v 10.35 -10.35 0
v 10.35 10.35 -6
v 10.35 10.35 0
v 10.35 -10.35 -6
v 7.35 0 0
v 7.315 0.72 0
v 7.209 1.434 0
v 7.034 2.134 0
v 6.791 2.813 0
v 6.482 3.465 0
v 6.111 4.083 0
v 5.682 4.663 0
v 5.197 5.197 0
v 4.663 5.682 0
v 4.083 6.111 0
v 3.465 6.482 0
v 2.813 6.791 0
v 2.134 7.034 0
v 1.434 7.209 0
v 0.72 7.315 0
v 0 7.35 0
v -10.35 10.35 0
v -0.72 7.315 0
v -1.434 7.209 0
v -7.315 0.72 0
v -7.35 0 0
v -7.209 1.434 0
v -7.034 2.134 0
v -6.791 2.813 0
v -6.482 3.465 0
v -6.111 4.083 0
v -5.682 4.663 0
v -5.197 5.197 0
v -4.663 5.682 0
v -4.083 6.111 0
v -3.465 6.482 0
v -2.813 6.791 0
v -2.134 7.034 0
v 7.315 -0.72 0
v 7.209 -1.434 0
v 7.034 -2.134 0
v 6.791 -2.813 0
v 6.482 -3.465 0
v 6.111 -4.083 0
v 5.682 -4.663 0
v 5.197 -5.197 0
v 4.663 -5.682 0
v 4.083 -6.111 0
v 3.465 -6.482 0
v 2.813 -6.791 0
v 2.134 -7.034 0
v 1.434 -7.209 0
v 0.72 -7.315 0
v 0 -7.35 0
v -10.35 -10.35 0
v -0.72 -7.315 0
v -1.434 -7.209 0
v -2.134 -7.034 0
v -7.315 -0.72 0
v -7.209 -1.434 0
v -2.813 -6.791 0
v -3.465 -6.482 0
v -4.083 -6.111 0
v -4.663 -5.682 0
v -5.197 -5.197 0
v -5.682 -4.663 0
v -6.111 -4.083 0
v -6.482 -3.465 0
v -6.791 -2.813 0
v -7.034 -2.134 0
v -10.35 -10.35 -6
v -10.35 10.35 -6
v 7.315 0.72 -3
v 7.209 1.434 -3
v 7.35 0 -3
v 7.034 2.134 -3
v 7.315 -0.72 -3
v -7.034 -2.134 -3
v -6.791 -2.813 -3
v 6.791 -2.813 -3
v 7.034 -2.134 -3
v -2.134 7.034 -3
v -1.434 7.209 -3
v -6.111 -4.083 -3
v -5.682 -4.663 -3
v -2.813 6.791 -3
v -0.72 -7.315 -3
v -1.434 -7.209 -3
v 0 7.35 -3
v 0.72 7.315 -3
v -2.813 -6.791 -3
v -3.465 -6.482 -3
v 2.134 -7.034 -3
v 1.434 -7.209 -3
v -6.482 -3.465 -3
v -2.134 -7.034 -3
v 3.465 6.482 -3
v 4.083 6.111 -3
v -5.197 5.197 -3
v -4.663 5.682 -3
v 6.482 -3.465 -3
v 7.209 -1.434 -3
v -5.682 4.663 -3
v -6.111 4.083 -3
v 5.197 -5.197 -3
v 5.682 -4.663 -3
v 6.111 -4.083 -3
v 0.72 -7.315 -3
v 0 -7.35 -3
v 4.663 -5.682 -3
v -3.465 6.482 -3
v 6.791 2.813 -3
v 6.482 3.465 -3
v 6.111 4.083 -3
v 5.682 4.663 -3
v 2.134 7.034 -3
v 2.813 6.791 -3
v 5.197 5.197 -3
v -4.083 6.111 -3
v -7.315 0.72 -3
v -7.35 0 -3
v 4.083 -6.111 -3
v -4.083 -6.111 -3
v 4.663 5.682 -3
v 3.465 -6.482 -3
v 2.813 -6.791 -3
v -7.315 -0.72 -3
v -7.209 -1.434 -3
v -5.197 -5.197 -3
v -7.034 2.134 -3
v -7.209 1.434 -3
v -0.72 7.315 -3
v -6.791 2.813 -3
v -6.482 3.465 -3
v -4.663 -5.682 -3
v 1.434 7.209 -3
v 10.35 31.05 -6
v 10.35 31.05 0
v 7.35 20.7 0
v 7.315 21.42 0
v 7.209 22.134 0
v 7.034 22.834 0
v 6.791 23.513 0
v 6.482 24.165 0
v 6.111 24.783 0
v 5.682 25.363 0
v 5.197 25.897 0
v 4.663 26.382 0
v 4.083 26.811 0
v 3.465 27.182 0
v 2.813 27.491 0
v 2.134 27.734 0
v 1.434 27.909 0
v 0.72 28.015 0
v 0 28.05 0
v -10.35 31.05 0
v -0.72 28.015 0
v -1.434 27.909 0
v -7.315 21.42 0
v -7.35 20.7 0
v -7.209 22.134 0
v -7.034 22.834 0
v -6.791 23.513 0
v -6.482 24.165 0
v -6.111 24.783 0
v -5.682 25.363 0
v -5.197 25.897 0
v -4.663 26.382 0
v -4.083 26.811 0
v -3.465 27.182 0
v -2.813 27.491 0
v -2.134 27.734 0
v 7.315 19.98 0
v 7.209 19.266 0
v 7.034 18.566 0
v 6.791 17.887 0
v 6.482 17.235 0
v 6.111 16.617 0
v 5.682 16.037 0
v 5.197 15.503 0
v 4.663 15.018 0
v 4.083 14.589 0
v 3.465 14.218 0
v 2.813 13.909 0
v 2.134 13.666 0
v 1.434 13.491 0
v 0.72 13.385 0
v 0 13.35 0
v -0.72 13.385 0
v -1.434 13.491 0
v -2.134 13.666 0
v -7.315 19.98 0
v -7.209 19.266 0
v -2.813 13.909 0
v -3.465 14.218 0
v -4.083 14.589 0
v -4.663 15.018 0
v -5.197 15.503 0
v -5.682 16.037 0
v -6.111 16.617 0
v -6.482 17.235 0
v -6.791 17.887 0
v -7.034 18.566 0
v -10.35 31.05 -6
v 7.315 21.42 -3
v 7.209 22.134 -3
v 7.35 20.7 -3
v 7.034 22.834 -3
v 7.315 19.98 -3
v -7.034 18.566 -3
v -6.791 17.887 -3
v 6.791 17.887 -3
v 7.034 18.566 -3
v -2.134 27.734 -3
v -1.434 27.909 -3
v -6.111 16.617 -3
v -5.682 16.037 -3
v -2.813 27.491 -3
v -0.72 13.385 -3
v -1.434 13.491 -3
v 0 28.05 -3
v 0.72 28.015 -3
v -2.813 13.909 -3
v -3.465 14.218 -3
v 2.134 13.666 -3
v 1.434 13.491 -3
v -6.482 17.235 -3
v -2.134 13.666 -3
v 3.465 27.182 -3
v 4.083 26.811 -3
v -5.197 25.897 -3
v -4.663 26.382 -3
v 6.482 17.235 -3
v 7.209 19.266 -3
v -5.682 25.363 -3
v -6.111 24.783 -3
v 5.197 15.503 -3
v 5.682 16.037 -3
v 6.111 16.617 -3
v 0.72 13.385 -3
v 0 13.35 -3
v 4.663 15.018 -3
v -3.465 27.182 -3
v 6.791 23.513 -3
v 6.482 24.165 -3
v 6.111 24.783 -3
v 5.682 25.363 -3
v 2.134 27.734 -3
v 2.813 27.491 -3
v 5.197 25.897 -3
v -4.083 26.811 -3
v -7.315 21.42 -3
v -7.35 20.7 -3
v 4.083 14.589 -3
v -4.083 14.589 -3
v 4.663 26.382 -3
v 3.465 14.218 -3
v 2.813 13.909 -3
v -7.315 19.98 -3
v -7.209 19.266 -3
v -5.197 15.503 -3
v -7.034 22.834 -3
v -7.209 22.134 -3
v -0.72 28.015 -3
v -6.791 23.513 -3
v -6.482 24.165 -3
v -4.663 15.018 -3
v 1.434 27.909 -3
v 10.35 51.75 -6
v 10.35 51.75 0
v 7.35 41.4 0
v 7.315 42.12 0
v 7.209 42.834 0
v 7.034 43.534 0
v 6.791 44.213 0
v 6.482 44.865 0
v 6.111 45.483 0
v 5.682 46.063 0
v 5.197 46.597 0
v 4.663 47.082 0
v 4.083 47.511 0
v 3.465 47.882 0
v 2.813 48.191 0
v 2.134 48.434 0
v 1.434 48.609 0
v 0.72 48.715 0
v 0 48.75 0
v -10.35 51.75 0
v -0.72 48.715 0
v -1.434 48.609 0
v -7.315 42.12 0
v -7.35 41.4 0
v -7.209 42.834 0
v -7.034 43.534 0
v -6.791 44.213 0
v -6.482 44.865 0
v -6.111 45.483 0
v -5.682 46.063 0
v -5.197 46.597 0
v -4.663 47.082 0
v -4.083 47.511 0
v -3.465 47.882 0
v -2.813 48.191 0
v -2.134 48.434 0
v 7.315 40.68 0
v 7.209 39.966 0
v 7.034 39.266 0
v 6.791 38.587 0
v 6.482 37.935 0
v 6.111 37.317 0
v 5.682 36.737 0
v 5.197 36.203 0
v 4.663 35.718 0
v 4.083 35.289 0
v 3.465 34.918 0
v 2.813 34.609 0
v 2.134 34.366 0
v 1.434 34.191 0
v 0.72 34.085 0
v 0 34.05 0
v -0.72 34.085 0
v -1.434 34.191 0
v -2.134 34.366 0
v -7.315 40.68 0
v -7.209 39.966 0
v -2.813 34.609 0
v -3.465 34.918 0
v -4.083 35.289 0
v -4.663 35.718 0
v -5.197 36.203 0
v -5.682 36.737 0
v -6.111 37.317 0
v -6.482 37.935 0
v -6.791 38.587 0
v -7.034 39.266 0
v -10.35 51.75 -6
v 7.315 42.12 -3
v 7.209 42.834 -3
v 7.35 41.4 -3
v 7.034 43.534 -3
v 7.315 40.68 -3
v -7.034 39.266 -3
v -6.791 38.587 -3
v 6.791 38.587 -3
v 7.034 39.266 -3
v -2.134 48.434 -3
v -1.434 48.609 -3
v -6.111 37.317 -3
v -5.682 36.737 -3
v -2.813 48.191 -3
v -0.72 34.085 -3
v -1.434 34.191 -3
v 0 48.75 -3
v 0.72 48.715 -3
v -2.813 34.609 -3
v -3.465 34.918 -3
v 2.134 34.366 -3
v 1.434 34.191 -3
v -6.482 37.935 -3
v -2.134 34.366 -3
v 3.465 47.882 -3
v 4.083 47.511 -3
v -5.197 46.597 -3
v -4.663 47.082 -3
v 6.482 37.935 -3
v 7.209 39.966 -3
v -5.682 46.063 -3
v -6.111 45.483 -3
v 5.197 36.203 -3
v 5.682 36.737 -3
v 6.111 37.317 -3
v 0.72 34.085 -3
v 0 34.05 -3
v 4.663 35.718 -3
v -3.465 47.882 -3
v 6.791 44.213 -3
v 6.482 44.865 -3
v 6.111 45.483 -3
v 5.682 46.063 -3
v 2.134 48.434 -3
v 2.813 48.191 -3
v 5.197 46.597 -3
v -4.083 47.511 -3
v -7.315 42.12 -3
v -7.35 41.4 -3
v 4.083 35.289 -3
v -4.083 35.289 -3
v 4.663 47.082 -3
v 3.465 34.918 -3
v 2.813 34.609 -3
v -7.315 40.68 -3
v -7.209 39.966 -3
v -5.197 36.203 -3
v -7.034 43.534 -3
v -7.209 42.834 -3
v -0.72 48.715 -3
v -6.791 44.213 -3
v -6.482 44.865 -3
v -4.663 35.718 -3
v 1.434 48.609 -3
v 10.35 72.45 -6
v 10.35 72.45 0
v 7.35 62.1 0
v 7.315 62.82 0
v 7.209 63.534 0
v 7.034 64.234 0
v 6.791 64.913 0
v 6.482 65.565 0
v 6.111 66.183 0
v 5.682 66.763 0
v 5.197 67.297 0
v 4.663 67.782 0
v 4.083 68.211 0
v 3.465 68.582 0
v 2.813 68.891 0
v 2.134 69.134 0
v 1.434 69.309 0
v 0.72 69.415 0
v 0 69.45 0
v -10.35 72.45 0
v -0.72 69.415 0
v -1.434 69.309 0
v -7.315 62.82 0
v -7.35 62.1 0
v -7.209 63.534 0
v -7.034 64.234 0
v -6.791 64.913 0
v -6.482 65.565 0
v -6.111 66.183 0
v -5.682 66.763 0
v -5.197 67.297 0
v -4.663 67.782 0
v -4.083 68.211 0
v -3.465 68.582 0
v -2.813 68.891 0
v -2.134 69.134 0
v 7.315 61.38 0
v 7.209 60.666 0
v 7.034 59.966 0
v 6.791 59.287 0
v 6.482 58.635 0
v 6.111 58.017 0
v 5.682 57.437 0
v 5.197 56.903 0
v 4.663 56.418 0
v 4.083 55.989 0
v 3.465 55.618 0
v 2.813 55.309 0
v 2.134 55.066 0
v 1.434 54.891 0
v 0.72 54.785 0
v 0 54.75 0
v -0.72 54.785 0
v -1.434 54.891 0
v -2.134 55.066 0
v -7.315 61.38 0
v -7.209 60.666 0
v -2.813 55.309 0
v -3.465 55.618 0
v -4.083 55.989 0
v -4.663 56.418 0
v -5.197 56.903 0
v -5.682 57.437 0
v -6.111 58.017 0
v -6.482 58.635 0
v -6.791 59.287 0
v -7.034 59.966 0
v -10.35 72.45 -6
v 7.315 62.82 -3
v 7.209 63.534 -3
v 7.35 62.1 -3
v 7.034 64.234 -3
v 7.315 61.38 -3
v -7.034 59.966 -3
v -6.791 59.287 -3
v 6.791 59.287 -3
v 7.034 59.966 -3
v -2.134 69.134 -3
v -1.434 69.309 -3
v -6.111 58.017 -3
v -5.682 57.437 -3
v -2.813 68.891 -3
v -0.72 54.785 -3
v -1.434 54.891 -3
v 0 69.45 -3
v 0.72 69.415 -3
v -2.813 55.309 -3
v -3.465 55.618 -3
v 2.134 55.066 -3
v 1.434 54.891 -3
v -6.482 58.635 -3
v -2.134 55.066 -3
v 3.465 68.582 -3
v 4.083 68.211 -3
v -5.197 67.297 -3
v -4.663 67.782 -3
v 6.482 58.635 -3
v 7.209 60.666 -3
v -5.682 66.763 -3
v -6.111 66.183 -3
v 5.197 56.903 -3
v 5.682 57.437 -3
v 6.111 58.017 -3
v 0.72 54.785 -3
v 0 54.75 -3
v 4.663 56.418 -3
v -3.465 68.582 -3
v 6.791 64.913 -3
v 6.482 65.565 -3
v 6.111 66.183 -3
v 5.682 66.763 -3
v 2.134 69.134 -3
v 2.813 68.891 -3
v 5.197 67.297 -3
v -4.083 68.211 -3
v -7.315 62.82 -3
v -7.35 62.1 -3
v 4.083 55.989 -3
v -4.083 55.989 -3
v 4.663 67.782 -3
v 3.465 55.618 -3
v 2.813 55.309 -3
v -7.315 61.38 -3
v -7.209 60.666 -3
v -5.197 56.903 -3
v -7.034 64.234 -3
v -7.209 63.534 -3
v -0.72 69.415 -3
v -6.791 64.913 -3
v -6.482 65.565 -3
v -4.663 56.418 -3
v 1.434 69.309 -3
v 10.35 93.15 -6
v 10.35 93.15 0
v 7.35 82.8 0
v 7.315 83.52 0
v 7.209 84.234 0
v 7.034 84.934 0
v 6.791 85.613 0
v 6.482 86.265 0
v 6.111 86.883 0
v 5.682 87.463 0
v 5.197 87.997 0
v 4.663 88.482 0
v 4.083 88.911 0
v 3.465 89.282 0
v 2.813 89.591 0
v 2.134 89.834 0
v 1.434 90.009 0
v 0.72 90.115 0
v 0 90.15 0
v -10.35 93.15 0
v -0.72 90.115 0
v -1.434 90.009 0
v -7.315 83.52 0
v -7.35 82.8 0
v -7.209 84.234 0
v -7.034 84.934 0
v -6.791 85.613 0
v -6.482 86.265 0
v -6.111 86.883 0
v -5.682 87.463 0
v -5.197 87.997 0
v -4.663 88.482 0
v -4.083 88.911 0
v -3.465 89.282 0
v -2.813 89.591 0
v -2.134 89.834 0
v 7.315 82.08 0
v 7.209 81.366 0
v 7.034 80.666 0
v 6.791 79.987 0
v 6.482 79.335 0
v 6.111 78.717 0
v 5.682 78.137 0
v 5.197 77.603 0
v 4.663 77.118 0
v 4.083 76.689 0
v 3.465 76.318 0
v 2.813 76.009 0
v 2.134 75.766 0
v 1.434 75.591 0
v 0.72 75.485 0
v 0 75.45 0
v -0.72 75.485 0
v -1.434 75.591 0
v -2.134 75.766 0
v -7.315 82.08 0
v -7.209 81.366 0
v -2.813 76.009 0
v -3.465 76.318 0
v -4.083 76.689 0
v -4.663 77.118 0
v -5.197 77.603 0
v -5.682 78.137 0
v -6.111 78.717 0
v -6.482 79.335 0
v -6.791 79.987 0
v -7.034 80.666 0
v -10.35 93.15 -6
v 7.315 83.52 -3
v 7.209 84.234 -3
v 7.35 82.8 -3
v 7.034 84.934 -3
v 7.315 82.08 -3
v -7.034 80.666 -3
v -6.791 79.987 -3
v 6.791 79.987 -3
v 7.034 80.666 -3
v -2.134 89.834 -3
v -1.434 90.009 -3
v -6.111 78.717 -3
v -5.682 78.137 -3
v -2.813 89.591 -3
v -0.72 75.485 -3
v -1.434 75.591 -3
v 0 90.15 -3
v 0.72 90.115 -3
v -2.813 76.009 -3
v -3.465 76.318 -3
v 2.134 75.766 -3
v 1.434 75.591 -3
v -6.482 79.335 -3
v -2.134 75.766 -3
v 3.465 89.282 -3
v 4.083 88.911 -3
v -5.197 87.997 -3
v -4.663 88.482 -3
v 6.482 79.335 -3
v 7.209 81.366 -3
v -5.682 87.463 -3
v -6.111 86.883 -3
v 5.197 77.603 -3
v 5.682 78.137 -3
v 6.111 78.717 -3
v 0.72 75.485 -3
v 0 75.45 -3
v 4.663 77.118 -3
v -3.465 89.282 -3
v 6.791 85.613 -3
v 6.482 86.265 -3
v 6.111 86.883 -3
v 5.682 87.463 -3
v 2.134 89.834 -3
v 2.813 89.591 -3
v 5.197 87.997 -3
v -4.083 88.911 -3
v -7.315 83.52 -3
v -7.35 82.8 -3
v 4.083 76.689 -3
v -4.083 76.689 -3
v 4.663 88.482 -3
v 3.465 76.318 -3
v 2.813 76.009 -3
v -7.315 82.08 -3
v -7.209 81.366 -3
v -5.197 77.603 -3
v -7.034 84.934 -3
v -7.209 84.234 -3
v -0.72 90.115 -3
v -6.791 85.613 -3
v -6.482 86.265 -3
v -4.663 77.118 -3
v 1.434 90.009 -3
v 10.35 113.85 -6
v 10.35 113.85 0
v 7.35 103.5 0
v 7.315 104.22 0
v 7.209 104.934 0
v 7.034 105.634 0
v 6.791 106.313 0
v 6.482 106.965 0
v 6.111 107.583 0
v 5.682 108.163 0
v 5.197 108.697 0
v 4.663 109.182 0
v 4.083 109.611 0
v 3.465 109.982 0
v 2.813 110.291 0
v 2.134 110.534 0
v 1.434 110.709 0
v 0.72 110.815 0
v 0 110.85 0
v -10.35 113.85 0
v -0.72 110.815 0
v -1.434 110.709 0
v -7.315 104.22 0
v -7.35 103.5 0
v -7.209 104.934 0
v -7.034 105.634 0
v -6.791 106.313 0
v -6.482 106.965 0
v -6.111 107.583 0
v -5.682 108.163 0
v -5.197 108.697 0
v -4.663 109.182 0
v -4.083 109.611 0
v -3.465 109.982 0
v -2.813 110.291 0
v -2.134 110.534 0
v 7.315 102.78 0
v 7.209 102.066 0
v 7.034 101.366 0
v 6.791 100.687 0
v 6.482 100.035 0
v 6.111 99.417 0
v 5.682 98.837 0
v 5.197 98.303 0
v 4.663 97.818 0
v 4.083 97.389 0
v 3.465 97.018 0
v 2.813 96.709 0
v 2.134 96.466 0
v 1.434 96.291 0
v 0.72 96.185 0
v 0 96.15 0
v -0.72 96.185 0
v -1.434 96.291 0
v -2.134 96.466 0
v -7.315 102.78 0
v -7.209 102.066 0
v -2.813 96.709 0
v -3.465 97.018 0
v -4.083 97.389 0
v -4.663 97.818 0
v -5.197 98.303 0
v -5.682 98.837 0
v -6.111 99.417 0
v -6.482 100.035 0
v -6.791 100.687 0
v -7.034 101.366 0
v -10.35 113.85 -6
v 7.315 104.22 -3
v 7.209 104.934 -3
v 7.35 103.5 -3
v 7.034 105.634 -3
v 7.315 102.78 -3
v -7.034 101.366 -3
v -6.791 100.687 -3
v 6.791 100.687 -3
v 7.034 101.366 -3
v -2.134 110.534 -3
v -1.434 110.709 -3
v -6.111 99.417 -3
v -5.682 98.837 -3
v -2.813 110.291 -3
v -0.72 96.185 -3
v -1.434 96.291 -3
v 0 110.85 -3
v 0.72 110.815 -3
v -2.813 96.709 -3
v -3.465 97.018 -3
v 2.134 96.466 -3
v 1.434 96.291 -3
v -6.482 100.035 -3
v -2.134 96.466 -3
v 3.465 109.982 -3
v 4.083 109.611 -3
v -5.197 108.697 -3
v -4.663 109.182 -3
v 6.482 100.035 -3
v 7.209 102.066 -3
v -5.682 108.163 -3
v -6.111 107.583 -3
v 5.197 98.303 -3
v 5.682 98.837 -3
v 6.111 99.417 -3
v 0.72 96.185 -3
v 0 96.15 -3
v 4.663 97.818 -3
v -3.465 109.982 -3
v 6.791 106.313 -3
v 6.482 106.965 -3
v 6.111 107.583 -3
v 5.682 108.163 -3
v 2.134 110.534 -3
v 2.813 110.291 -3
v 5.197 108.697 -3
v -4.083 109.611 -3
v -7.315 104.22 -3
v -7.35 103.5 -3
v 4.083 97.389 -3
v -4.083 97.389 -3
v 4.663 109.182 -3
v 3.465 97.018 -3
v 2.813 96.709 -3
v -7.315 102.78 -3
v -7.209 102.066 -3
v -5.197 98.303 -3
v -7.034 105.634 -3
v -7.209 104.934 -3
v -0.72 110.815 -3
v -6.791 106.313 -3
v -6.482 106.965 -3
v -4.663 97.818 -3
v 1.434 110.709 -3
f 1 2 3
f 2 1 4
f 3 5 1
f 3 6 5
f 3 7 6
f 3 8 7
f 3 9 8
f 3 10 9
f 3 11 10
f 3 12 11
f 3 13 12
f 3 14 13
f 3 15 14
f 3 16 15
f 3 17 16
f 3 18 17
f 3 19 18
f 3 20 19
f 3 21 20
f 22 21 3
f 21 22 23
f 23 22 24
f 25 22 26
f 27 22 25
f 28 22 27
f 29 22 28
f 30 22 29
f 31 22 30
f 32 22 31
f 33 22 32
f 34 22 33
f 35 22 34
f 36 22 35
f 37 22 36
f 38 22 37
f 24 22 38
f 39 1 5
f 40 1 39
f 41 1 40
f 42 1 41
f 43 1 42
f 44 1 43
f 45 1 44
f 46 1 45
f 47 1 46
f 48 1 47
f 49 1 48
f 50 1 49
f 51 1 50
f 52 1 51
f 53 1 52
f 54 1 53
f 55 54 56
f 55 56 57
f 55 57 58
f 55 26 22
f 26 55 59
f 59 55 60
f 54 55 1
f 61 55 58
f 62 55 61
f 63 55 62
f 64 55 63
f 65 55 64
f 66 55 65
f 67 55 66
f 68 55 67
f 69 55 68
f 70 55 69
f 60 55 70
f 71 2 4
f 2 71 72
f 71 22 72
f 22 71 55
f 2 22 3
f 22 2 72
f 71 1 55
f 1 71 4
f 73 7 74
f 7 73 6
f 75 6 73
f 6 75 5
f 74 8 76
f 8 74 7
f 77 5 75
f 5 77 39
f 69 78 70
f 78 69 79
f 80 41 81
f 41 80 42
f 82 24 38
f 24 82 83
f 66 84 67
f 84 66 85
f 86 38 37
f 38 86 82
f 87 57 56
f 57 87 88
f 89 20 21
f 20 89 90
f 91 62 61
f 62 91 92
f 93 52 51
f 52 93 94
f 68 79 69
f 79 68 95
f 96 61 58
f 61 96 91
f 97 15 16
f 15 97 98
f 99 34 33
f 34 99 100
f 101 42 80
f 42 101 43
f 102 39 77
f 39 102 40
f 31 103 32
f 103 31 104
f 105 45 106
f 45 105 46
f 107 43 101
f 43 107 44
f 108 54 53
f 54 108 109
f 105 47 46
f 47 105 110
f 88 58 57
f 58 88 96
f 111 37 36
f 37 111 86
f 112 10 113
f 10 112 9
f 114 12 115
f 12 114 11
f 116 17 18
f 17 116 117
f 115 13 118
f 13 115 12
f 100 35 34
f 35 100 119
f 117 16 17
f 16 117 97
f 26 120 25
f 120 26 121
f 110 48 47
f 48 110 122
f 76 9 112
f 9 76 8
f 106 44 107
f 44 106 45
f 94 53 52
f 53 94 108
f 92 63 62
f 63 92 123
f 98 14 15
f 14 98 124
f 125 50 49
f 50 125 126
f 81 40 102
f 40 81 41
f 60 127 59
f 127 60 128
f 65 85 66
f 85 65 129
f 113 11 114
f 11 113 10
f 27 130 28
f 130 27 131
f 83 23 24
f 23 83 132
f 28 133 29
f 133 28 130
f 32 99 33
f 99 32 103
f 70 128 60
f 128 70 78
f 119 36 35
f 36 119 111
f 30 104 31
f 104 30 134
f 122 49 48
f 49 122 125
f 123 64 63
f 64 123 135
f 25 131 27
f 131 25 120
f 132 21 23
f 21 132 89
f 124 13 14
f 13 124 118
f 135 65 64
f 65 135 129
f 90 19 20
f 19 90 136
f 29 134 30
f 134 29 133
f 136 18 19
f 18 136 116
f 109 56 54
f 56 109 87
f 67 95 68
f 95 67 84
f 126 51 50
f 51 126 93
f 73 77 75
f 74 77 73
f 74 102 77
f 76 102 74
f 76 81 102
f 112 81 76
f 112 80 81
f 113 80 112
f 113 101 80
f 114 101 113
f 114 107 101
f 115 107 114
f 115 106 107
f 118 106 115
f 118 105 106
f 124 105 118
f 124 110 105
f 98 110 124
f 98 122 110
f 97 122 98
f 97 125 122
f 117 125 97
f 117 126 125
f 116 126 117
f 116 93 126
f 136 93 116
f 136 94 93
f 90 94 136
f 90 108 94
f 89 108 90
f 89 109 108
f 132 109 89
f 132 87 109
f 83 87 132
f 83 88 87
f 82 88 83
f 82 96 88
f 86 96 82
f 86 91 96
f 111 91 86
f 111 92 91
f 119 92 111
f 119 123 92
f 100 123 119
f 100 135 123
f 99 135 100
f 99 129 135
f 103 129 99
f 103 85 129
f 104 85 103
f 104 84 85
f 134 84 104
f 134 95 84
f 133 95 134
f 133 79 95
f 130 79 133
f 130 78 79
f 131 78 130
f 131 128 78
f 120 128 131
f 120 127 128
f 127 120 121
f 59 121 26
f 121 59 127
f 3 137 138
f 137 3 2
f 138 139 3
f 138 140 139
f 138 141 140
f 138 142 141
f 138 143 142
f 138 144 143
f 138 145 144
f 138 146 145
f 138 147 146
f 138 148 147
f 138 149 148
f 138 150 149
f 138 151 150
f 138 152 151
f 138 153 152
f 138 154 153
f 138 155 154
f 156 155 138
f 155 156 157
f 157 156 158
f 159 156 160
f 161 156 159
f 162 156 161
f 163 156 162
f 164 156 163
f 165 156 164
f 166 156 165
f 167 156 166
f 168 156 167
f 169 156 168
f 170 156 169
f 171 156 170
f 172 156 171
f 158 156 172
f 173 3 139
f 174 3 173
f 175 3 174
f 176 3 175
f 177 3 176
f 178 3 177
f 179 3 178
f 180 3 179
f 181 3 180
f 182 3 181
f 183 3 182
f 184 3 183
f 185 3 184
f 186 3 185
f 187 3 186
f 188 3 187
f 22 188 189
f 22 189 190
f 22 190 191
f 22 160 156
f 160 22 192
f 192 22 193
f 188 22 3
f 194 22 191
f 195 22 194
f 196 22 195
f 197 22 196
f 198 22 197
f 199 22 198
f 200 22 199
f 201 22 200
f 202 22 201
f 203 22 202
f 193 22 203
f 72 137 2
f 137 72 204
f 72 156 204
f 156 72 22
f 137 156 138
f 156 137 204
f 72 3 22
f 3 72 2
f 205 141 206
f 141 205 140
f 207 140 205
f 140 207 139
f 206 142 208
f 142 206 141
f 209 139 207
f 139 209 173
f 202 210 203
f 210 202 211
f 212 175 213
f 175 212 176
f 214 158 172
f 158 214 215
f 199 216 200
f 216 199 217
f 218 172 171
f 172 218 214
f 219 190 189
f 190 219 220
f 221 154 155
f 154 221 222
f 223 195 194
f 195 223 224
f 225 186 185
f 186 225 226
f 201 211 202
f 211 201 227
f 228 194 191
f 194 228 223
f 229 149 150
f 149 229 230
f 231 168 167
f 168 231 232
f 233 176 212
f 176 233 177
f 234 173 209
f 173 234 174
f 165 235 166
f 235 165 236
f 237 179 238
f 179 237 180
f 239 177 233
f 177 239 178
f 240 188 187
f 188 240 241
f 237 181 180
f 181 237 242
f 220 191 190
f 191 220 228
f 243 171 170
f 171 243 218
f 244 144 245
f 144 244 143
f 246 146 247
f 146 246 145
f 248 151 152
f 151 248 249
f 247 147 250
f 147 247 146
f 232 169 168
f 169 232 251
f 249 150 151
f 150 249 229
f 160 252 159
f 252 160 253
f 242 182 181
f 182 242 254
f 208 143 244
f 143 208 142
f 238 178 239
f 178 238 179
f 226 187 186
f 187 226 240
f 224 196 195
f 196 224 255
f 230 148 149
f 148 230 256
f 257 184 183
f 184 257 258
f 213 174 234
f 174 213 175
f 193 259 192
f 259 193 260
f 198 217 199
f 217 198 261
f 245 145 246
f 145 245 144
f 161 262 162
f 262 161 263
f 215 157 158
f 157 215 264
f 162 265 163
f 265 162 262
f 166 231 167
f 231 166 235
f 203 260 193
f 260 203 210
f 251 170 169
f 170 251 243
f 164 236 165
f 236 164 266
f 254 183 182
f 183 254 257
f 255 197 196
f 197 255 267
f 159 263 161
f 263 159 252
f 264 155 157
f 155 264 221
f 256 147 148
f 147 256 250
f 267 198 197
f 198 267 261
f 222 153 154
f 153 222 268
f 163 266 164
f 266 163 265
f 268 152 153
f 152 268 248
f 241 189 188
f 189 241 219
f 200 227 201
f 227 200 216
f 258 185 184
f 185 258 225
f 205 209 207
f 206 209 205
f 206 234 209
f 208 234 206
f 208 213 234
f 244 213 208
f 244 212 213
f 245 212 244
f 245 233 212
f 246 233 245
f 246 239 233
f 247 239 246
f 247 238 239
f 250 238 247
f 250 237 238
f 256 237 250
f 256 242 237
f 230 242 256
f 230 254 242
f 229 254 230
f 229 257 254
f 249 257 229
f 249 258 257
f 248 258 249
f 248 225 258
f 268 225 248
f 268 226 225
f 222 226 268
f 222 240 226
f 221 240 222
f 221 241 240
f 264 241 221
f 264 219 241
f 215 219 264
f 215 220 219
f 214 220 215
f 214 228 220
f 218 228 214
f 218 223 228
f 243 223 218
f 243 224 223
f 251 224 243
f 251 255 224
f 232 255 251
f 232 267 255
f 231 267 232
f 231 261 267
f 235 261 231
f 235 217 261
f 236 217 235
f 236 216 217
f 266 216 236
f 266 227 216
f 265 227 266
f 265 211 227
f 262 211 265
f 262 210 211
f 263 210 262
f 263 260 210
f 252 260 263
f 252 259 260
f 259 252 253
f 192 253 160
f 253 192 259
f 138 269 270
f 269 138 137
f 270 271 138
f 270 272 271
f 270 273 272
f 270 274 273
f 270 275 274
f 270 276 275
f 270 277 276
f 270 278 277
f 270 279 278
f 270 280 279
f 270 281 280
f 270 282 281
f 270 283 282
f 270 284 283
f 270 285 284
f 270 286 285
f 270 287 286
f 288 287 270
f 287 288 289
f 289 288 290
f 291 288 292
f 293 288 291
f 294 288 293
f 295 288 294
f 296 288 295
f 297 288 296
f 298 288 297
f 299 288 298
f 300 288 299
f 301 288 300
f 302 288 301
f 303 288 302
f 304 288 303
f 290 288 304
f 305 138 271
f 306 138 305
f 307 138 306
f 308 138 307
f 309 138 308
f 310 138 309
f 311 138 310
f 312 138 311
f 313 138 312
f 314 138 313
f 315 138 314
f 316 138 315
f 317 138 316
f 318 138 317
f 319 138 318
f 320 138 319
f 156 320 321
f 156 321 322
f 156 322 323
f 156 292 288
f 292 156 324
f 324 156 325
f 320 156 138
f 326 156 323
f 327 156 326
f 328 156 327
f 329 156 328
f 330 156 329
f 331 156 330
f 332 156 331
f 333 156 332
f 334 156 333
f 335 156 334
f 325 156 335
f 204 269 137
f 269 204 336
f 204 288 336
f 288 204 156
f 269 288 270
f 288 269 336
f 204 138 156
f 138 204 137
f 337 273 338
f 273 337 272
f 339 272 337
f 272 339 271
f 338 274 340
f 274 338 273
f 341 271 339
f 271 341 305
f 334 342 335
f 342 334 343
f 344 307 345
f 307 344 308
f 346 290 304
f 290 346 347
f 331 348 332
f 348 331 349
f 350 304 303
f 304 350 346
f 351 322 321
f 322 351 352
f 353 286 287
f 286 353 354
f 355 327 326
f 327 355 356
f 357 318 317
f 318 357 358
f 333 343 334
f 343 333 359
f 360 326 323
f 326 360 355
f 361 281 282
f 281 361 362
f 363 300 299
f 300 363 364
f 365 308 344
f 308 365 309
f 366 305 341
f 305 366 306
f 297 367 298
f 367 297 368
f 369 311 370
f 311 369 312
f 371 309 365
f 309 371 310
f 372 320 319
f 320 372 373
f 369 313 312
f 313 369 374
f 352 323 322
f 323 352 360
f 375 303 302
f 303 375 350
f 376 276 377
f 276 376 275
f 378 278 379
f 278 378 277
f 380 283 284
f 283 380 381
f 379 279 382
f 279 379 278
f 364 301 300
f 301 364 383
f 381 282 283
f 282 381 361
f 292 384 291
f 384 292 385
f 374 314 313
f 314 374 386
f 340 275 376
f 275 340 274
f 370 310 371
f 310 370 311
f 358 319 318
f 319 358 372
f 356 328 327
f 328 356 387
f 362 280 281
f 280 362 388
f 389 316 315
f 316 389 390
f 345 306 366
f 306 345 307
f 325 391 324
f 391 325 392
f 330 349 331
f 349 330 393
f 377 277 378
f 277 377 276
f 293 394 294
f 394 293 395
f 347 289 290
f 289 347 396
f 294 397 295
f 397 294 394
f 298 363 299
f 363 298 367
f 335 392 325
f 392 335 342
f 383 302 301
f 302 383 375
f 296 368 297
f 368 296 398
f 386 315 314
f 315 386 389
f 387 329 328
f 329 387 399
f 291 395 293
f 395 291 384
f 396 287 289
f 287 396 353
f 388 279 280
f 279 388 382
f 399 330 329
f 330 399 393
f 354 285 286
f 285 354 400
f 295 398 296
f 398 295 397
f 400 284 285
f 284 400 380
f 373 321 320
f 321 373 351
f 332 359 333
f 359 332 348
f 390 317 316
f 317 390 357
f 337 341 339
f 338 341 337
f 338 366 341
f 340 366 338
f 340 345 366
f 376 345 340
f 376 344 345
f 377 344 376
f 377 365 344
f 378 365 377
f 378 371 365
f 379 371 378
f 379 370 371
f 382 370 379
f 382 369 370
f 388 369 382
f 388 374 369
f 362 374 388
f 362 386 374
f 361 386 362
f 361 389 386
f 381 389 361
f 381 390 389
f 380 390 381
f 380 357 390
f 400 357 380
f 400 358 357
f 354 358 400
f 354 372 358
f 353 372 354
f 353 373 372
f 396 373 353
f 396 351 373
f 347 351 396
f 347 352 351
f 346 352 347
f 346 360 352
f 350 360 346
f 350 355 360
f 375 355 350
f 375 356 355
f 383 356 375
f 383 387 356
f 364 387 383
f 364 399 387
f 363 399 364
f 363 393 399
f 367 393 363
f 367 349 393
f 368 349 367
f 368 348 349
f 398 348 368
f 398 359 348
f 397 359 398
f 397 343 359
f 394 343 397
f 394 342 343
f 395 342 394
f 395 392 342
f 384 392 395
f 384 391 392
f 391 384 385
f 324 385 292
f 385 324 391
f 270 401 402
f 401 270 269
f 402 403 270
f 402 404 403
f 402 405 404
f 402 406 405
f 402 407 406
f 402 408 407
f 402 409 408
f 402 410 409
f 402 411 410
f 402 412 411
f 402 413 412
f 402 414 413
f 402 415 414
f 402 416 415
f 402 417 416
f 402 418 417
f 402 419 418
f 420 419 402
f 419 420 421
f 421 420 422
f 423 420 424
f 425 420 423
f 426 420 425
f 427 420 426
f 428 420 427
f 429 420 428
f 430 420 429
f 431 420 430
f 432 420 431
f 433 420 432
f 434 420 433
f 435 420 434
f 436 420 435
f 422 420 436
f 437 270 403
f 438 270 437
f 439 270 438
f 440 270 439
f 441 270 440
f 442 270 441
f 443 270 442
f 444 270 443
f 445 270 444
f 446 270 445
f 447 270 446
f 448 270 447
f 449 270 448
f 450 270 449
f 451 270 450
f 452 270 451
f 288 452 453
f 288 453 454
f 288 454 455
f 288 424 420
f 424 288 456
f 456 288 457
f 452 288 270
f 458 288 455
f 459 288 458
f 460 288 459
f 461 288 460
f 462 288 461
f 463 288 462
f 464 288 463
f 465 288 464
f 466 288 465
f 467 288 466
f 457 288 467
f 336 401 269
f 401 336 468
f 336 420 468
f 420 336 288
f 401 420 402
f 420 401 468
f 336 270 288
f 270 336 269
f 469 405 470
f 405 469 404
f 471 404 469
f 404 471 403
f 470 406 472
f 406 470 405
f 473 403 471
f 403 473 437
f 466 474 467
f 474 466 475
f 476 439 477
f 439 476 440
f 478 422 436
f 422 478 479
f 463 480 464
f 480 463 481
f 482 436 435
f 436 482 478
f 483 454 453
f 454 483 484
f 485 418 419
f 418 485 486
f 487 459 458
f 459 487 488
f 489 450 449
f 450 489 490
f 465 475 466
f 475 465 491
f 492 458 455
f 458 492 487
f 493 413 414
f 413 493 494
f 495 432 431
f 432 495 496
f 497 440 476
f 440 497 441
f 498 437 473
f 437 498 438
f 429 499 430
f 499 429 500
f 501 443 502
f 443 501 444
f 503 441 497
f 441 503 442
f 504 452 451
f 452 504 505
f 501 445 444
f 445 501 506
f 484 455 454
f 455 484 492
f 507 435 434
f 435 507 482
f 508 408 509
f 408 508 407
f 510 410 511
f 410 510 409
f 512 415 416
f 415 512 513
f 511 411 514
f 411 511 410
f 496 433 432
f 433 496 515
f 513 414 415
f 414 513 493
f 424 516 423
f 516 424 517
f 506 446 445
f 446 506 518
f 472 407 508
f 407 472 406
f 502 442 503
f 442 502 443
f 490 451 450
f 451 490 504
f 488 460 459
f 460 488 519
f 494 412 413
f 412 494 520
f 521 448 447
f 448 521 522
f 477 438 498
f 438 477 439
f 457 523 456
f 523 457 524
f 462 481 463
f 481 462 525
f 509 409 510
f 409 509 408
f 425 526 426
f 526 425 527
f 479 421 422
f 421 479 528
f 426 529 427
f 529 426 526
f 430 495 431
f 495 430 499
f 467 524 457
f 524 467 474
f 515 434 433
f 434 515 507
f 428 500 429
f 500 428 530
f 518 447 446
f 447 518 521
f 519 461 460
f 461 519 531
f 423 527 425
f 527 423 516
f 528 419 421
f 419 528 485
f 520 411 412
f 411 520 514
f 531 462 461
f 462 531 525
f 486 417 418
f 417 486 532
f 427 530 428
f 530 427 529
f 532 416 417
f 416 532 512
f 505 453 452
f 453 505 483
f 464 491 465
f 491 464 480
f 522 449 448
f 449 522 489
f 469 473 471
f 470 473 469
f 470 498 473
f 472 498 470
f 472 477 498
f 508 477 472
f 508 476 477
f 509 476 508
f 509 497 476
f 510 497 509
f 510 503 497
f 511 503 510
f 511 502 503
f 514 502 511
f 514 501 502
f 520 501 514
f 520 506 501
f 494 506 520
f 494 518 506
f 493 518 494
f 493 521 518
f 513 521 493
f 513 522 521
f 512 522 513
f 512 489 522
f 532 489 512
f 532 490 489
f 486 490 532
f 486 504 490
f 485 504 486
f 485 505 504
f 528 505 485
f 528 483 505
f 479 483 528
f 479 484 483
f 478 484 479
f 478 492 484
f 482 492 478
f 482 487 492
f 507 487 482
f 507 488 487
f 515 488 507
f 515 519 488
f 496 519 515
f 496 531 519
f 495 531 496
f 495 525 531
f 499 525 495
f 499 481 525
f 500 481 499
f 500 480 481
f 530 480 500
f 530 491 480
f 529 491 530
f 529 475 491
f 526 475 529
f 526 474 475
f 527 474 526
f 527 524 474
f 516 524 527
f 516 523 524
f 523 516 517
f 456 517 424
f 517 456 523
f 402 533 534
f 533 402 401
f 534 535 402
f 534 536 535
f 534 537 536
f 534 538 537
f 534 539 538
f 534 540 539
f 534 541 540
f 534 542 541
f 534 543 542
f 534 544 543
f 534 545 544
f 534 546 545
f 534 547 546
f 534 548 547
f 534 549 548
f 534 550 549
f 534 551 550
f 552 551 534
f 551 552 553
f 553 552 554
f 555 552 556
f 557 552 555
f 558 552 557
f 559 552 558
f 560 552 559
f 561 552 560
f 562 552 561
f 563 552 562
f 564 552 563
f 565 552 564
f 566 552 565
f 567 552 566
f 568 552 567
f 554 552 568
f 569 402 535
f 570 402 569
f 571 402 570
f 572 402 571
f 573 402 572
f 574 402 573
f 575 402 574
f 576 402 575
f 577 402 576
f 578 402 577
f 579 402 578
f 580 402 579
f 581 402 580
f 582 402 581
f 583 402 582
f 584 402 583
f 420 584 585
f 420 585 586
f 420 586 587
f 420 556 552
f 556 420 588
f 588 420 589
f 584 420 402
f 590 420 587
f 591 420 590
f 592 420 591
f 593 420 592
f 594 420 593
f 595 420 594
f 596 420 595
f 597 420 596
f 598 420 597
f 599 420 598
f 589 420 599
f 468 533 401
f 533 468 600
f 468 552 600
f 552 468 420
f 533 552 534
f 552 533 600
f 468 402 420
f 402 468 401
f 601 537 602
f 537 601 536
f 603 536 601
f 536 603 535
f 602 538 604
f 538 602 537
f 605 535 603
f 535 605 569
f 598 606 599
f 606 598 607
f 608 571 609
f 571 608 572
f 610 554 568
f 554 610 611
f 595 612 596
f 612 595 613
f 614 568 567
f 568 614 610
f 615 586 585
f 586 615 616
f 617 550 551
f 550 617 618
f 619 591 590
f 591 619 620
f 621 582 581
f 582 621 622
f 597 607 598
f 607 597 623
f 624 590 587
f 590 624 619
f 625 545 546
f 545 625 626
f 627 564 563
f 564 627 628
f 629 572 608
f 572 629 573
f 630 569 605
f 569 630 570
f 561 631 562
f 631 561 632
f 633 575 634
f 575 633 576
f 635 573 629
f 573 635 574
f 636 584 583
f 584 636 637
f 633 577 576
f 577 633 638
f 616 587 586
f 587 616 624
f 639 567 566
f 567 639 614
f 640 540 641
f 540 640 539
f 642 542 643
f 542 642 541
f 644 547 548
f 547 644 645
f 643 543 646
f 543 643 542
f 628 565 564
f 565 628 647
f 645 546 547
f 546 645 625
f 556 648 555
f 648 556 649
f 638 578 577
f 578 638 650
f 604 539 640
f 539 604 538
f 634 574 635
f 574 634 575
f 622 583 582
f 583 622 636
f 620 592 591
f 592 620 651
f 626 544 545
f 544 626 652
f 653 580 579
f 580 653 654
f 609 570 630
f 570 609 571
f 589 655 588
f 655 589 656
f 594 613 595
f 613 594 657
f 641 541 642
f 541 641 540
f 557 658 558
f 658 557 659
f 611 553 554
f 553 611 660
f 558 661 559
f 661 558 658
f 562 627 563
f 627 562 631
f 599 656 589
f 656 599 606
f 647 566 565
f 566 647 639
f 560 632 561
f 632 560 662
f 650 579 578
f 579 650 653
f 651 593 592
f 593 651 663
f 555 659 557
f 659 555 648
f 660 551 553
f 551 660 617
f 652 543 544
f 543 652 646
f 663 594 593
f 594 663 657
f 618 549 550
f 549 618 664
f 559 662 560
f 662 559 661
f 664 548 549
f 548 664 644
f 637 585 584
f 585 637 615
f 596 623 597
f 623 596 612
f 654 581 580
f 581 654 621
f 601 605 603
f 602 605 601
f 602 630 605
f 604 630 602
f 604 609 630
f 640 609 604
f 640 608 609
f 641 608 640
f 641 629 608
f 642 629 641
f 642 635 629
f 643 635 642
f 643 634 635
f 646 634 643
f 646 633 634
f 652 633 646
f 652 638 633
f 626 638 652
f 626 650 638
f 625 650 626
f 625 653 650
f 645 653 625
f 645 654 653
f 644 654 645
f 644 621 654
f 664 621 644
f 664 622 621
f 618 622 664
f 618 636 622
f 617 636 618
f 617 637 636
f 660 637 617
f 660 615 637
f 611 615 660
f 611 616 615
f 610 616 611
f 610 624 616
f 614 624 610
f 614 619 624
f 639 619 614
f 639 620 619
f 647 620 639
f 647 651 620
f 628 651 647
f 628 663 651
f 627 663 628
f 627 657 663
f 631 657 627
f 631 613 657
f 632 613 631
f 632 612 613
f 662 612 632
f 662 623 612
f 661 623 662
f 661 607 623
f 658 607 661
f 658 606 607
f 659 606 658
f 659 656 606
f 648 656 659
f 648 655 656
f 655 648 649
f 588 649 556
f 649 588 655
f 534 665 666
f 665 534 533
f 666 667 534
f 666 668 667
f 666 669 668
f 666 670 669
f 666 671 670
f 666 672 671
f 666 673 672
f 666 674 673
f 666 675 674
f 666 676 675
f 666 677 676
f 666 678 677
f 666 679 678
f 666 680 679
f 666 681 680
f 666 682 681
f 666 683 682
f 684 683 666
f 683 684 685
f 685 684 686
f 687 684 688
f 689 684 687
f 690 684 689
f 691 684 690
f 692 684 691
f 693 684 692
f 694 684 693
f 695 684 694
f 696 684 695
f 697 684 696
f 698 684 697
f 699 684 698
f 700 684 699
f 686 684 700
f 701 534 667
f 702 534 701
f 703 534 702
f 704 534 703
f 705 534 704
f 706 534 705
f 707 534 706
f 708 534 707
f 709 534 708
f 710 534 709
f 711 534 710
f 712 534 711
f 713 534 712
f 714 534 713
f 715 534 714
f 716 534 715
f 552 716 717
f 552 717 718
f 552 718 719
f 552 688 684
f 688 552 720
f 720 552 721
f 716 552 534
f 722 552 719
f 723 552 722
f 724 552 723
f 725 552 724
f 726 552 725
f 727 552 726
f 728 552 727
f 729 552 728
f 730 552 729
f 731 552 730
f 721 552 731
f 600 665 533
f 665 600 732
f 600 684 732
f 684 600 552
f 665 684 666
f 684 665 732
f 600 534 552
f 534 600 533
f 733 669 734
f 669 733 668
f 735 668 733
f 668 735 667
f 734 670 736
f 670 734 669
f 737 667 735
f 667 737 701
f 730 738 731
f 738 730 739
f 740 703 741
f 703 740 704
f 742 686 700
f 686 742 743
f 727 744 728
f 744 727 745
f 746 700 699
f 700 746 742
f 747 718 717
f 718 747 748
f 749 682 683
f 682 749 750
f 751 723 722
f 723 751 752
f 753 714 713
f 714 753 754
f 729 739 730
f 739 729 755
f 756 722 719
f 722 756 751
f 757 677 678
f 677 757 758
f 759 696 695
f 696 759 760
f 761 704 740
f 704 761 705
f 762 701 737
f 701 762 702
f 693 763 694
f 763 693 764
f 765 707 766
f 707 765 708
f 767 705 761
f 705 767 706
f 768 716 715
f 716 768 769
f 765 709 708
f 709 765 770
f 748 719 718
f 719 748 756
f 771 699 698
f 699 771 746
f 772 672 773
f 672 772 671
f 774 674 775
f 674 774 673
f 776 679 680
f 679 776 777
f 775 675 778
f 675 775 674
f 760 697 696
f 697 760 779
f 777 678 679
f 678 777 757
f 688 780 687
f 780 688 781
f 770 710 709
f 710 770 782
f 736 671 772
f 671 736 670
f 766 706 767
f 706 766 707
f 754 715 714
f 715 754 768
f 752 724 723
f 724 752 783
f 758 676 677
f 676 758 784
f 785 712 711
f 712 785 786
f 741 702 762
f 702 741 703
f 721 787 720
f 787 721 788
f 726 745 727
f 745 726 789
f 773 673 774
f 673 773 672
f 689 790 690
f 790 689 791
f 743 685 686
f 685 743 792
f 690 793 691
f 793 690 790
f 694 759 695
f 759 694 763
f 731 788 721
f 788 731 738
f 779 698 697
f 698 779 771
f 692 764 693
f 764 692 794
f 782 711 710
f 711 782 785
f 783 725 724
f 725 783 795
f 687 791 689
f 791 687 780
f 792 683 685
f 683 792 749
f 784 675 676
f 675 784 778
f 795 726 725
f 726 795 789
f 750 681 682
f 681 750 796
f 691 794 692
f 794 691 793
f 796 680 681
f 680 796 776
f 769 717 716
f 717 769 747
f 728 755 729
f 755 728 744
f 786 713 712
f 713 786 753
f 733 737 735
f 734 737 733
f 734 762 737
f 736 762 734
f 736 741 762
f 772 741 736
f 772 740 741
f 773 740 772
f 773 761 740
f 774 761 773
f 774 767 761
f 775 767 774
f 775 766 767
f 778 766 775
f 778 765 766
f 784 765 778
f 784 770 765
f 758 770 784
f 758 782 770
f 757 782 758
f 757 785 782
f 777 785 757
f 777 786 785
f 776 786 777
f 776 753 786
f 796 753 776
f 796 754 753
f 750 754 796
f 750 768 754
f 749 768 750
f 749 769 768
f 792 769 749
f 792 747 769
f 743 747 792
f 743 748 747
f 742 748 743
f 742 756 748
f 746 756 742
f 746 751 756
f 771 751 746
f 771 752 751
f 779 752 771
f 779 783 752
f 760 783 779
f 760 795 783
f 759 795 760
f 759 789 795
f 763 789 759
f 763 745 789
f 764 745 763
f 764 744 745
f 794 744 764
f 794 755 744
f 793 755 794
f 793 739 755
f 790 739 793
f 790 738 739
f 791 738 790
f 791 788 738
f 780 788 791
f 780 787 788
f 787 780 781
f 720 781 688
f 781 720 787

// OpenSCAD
// Generated by SolidPython 1.1.3 on 2024-01-02 15:48:13


union() {
	translate(v = [0.0000000000, 0.0000000000, 0.0000000000]) {
		difference() {
			translate(v = [0, 0, -3.0000000000]) {
				cube(center = true, size = [20.7000000000, 20.7000000000, 6]);
			}
			translate(v = [0, 0, -1.5000000000]) {
				cylinder($fn = 64, center = true, h = 3, r = 7.3500000000);
			}
		}
	}
	translate(v = [0.0000000000, 20.7000000000, 0.0000000000]) {
		difference() {
			translate(v = [0, 0, -3.0000000000]) {
				cube(center = true, size = [20.7000000000, 20.7000000000, 6]);
			}
			translate(v = [0, 0, -1.5000000000]) {
				cylinder($fn = 64, center = true, h = 3, r = 7.3500000000);
			}
		}
	}
	translate(v = [0.0000000000, 41.4000000000, 0.0000000000]) {
		difference() {
			translate(v = [0, 0, -3.0000000000]) {
				cube(center = true, size = [20.7000000000, 20.7000000000, 6]);
			}
			translate(v = [0, 0, -1.5000000000]) {
				cylinder($fn = 64, center = true, h = 3, r = 7.3500000000);
			}
		}
	}
	translate(v = [0.0000000000, 62.1000000000, 0.0000000000]) {
		difference() {
			translate(v = [0, 0, -3.0000000000]) {
				cube(center = true, size = [20.7000000000, 20.7000000000, 6]);
			}
			translate(v = [0, 0, -1.5000000000]) {
				cylinder($fn = 64, center = true, h = 3, r = 7.3500000000);
			}
		}
	}
	translate(v = [0.0000000000, 82.8000000000, 0.0000000000]) {
		difference() {
			translate(v = [0, 0, -3.0000000000]) {
				cube(center = true, size = [20.7000000000, 20.7000000000, 6]);
			}
			translate(v = [0, 0, -1.5000000000]) {
				cylinder($fn = 64, center = true, h = 3, r = 7.3500000000);
			}
		}
	}
	translate(v = [0.0000000000, 103.5000000000, 0.0000000000]) {
		difference() {
			translate(v = [0, 0, -3.0000000000]) {
				cube(center = true, size = [20.7000000000, 20.7000000000, 6]);
			}
			translate(v = [0, 0, -1.5000000000]) {
				cylinder($fn = 64, center = true, h = 3, r = 7.3500000000);
			}
		}
	}
}
/***********************************************
*********      SolidPython code:      **********
************************************************
 
import solid
import os
import os.path as osp
from make_device import make_unit_array

def save_model(model,base_path,base_name):
    if not osp.exists(base_path):
        os.makedirs(base_path)
    scad_path=osp.join(base_path,base_name+".scad")
    solid.scad_render_to_file(model,osp.join(scad_path))


def create_rack(item_diameter,item_thickness,rack_height,base_name,base_path,item_diameter_extra=0,item_thickness_extra=0,rack_size_extra=0,grid_size=[1,1]):
    holder_size=(item_diameter+item_diameter_extra+rack_size_extra,item_diameter+item_diameter_extra+rack_size_extra)
    dims = [*holder_size, 0]
    height= item_thickness+item_thickness_extra
    radius=(item_diameter+item_diameter_extra)/2.0
    hole = solid.cylinder(r=radius, h=height, segments=64, center = True)
    hole = solid.translate([0,0,-height/2.0])(hole)
    holder = solid.cube((*holder_size,rack_height), center = True)
    holder = solid.translate([0,0,-rack_height/2.0])(holder)
    holder = solid.difference()(holder,hole)
    holder=make_unit_array(holder,dims,grid_size)
    save_model(holder,base_path,base_name)

version="v1"
base_path="./designs/plasma_racks/4mm_well_0.5inch_diam_device_"+version+"/"
#coverslip glass holder
item_diameter=18
item_diameter_extra=2
item_thickness=0.16
item_thickness_extra=0.04
rack_height=4
rack_size_extra=6
base_name="18CIR-1_rack_"+version
grid_size=[1,6]
create_rack(item_diameter,item_thickness,rack_height,base_name,base_path,item_diameter_extra=item_diameter_extra,item_thickness_extra=item_thickness_extra,rack_size_extra=rack_size_extra,grid_size=grid_size)

#0.5" diam device holder
item_diameter=12.7
item_diameter_extra=2
item_thickness=3
item_thickness_extra=0
rack_height=6
rack_size_extra=6
base_name="0.5inch_4mm_device_rack_"+version
grid_size=[1,6]
create_rack(item_diameter,item_thickness,rack_height,base_name,base_path,item_diameter_extra=item_diameter_extra,item_thickness_extra=item_thickness_extra,rack_size_extra=rack_size_extra,grid_size=grid_size)

 
 
************************************************/
